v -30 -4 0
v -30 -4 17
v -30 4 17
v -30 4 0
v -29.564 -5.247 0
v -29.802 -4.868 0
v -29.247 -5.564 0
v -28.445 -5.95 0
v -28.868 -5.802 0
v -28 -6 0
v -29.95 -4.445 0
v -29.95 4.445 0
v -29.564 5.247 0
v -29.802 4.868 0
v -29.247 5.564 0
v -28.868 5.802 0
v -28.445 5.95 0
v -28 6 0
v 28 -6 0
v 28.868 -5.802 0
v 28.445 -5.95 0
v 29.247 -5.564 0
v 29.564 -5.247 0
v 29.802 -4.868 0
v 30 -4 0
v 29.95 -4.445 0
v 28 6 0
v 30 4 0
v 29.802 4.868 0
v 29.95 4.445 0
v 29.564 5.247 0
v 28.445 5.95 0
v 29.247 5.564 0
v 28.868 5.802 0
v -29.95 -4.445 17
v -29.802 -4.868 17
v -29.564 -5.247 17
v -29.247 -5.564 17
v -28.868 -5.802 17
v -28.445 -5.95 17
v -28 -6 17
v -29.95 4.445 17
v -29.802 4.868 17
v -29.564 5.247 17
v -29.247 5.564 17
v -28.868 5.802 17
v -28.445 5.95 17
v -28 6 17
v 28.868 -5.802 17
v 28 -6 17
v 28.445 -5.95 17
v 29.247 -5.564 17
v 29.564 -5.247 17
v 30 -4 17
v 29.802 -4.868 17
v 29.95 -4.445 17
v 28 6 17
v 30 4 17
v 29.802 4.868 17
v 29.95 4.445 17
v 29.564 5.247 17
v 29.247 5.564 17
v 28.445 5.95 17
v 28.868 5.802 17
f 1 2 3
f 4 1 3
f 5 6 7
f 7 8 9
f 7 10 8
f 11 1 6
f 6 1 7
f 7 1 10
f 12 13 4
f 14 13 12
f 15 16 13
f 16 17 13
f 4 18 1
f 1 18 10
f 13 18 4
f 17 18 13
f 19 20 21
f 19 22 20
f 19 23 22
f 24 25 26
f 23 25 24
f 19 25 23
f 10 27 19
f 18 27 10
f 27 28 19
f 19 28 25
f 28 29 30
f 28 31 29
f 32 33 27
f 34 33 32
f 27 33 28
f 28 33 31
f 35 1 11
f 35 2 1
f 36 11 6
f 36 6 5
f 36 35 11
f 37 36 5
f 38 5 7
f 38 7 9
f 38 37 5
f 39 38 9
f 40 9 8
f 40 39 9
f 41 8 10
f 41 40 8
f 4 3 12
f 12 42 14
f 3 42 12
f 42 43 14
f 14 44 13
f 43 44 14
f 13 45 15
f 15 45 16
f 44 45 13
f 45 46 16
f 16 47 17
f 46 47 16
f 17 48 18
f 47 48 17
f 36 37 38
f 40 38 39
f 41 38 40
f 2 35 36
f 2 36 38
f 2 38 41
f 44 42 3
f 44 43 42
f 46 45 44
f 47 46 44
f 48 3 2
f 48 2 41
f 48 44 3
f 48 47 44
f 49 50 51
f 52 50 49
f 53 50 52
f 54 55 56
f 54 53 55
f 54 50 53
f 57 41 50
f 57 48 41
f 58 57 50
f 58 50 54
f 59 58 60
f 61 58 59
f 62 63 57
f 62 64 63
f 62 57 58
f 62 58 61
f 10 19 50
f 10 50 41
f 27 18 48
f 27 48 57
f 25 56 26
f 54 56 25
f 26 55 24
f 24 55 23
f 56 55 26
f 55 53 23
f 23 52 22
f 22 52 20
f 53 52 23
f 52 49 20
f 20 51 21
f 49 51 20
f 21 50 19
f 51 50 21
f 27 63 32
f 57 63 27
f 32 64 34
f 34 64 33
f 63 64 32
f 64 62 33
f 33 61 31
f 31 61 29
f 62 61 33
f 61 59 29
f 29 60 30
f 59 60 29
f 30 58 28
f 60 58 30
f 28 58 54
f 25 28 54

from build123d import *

# Parameters (mm, degrees)
SKETCH_W  = 60
SKETCH_H  = 12
PAD_DEPTH = 17
FILLET_R  = 2


with BuildPart() as part:
    # Sketch → Pad (new body)
    with BuildSketch(Plane.XY):
        Rectangle(SKETCH_W, SKETCH_H)
    extrude(amount=PAD_DEPTH)

    # Fillet
    fillet_edges = [part.edges().sort_by_distance(p)[0] for p in [
        (30, -6, 8.5),
        (-30, -6, 8.5),
        (30, 6, 8.5),
        (-30, 6, 8.5),
    ]]
    fillet(fillet_edges, radius=FILLET_R)


solid = part.part
